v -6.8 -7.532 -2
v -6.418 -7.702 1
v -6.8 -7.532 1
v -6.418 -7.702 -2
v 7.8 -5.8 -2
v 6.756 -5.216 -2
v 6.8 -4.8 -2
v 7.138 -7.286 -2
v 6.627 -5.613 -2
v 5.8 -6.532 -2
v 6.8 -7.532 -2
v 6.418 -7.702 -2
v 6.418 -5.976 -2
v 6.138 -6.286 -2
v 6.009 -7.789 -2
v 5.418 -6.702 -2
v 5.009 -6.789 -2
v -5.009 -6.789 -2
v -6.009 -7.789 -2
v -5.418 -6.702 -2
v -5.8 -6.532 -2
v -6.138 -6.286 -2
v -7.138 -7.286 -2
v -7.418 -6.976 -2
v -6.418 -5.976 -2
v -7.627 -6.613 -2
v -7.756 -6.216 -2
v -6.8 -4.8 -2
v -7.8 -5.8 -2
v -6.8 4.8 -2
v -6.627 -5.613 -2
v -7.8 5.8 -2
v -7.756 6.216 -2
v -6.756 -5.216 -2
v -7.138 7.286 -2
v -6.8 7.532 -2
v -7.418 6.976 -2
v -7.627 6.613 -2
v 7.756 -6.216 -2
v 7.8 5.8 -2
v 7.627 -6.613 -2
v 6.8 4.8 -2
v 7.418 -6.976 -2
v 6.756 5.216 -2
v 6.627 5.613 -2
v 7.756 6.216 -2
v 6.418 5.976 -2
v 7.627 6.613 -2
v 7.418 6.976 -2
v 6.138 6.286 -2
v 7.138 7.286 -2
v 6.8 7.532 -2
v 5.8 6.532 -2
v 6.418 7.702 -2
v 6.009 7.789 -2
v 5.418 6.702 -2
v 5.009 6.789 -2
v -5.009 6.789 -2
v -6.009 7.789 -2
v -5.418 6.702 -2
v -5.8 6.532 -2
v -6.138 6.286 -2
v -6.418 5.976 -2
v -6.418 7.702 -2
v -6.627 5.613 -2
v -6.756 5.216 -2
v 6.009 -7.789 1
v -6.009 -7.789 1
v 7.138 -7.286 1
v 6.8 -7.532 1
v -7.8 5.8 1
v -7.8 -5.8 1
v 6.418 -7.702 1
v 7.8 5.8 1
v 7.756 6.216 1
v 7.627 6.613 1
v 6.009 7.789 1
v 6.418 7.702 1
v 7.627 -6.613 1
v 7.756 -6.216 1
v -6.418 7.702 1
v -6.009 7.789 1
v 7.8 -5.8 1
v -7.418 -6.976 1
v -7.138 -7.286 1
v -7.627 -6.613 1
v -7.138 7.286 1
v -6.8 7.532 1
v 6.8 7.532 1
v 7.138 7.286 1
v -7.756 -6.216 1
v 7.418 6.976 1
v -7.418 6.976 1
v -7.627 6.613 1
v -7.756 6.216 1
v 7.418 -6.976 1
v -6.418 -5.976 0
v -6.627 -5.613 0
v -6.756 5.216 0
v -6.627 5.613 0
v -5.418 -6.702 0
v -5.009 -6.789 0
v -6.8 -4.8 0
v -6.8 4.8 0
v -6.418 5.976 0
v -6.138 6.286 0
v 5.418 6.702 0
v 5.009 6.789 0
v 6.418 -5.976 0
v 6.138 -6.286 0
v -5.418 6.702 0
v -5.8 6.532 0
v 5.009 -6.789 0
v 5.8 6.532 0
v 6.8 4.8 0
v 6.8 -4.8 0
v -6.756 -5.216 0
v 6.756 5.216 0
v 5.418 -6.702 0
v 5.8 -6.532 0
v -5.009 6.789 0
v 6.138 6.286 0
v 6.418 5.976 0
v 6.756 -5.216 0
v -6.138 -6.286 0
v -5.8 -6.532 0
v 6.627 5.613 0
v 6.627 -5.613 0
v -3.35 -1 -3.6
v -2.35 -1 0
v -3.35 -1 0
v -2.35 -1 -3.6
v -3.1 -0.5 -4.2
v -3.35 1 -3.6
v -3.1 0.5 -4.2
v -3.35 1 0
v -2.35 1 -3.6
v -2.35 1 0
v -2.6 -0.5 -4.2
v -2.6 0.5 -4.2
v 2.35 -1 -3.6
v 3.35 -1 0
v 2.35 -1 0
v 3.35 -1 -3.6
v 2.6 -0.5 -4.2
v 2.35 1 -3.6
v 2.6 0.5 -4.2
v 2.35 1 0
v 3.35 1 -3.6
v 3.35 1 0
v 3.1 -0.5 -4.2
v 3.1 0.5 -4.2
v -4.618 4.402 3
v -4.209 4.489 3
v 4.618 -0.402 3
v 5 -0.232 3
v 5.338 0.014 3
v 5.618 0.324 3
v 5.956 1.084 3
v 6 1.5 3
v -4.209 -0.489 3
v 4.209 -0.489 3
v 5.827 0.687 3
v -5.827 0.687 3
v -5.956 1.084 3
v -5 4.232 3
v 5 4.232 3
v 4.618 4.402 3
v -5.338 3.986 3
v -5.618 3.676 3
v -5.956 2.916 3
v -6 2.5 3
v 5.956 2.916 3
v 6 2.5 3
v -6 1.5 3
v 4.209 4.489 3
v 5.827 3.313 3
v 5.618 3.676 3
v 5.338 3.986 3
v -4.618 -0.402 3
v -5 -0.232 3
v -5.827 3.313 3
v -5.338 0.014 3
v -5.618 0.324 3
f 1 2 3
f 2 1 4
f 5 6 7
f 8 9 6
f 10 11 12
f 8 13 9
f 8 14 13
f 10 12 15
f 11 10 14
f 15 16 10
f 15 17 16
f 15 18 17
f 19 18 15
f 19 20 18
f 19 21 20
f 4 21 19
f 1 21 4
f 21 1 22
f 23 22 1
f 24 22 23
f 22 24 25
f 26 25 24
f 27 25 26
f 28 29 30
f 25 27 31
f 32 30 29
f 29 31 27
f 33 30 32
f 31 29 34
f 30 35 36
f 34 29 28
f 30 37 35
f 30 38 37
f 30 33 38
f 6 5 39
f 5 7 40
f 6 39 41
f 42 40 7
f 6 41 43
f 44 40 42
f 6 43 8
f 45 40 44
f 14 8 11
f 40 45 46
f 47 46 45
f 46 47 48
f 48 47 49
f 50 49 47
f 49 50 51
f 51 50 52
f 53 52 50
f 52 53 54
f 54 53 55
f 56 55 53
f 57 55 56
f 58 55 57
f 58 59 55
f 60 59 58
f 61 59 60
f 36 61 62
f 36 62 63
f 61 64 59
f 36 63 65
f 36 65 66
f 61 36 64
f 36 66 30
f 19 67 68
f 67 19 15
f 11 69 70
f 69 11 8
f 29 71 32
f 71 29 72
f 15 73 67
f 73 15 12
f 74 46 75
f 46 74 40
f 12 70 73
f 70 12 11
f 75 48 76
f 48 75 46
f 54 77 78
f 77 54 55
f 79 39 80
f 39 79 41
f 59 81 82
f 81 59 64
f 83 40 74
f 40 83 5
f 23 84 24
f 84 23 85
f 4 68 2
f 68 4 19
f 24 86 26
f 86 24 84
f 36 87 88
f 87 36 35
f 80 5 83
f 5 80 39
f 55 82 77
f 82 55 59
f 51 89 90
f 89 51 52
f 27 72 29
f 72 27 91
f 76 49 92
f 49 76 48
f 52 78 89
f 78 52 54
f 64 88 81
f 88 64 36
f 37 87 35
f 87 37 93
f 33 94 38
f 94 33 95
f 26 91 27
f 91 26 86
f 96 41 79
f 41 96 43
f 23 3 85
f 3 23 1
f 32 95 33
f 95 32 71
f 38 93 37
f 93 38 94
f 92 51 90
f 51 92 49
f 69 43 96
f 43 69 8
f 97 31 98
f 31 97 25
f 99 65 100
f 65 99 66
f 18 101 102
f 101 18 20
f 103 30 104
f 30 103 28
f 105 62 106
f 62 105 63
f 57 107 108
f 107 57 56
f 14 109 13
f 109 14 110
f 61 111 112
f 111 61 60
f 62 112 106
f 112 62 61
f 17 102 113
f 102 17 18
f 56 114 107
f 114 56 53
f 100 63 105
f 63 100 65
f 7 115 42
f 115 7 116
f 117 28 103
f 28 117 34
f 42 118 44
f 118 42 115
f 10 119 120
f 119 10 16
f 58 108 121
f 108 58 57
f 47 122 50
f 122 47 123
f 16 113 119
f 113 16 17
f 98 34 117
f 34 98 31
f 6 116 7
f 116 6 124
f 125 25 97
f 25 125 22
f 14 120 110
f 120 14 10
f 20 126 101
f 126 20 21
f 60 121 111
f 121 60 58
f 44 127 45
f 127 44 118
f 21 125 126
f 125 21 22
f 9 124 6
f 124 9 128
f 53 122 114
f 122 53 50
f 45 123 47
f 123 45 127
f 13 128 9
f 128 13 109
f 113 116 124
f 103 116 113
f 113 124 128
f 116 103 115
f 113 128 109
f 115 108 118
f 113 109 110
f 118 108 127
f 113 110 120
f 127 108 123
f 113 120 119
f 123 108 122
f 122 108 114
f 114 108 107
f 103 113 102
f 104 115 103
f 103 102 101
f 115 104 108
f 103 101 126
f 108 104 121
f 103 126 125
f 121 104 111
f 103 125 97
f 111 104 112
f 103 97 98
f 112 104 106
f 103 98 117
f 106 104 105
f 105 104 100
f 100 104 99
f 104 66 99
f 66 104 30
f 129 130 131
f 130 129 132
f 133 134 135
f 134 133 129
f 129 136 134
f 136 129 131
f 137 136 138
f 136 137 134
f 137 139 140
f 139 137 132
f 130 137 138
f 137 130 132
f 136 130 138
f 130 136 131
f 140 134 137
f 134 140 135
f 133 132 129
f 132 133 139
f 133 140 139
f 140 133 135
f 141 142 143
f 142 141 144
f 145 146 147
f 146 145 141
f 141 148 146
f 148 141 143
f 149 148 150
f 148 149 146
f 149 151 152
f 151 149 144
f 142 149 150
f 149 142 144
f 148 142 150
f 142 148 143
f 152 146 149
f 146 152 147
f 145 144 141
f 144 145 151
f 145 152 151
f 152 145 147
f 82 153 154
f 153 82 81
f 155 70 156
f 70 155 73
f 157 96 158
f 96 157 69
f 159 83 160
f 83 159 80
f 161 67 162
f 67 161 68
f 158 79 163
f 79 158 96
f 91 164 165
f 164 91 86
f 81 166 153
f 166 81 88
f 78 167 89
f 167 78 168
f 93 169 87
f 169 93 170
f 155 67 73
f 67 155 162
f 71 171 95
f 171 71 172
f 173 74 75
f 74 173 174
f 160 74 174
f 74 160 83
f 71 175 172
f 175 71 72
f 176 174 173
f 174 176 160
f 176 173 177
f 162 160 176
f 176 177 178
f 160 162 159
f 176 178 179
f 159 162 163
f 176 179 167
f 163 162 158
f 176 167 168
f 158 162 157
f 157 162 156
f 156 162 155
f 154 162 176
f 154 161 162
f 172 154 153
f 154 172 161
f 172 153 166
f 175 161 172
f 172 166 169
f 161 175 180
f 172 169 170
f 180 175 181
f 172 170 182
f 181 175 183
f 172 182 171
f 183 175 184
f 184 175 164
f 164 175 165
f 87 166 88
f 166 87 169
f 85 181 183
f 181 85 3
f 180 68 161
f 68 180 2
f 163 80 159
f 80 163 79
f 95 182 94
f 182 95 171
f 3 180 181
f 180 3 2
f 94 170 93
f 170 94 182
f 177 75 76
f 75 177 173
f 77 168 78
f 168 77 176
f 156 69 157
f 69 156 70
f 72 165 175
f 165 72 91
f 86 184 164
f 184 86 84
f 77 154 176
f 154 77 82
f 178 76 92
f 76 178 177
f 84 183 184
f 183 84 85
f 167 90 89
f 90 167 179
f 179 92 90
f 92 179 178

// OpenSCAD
// file: ../../lib/utils.scad
// 角丸のプレート
module rounded_plate(x, y, r) {
  thickness = 0.0001;
  minkowski () {
    cube([x-r*2, y-r*2, thickness], center = true);
    cylinder(r = r, h = thickness, $fs = 0.1);
  }
}

// ベーシックなキーキャップの外観を定義
module keycap_basic_outer_shape(bottom_size, middle_size, top_size, top_height, skert_height, side_r) {
  hull () {
    translate([0, 0, top_height])
    rounded_plate(top_size, top_size, side_r);
    
    if(middle_size > 0) {
      translate([0, 0, 0])
      rounded_plate(middle_size, middle_size, side_r);
    }
    
    translate([0, 0, -skert_height])
    rounded_plate(bottom_size, bottom_size, side_r);
  }
}

// chocで使われる一般的なキーキャップの形状を定義
module keycap_basic_shape(
  top_size,
  head_height,
  middle_size,
  skert_height,
  bottom_size,
  thickness = 1.0,
  side_r = 1.0) {
  difference () {
    // 外形
    keycap_basic_outer_shape(bottom_size, middle_size, top_size, head_height, skert_height, side_r);
    // くり抜くための外形
    keycap_basic_outer_shape(bottom_size - thickness * 2, middle_size - thickness * 2, top_size - thickness * 2, 0, skert_height+0.005, side_r);
  }
}


// cylindricalな凹みを作る
module head_cylindrical_depress(top_size, top_height, depth) {
  function dish_r(w, d) = (w * w + 4 * d * d) / (8 * d);
  
  hull() {
    angle = 0;
    translate([0, 0, top_height]);
    rotate([- angle, 0, 0])
    translate([0, 0, dish_r(top_size, depth) - depth+top_height])
    rotate([90, 0, 0])
    cylinder(r = dish_r(top_size, depth), h = 60, /* 適当に十分な長さ */ center = true);
  }
}

// Generate dome sphere object
// calc r parameter on https://gist.github.com/masuidrive/b34472d82b07d0efead83aedf5579b78
module dome(width, height, r=0) {
  calc_width = 2 * sqrt(r^2 - (r - height)^2);

  if(abs(width - calc_width) > 0.1) {
    echo("><><><><><><><><><><");
    echo("WARNING: dome arguments are not correct, should be width ", calc_width);
  }

  difference(){
    translate([0, 0, height-r])
      sphere(r = r, $fn = 100);
    translate([0, 0, -r])
      cube([r*2, r*2, r*2], center = true);
  }
}

// https://qiita.com/zk_phi/items/ab99315ebaef66e84aa0
// https://bebebe.hatenablog.jp/entry/2019/06/04/232501
// https://qiita.com/zk_phi/items/ab99315ebaef66e84aa0
// file: ../../lib/choc.scad
// ChocV1の足を作る
module kailh_choc_v1_stem() {
  leg_length = 3.6;
  thin_length = 0.6;

  for (z = [-2.85, 2.85]) {
      translate([z, 0, -leg_length/2])
        hull() {
          cube([1, 2, leg_length], center=true);
          translate([0, 0, -(leg_length/2)-thin_length])
            cube([0.5, 1, 0.001], center=true);
        };
  }
}


module preview_chocv1_switch(DEBUG=true) {
  union() {
    children();

    if(DEBUG == true || DEBUG == "x") {
      translate([20, 20, 0])
      difference() {
        union() {
          children();
          difference() {
            translate([0, 0, -3.35]) import("../lib/choc_v1_switch.stl", convexity=2);
            translate([-10, -10, 0]) cube([20, 20, 20]);
          }
        }
        translate([-10, 0, -10]) cube([20, 20, 20]);
      }
    }

    if(DEBUG == true || DEBUG == "y") {
      translate([-20, -20, 0])
      difference() {
        union() {
          children();
          difference() {
            translate([0, 0, -3.35]) import("../lib/choc_v1_switch.stl", convexity=2);
            translate([-10, -10, 0]) cube([20, 20, 20]);
          }
        }
        translate([0, -10, -10]) cube([20, 20, 20]);
      }
    }
  }
}
// main file
include <../../lib/choc.scad>
include <../../lib/utils.scad>

DEBUG = false;//"x";

preview_chocv1_switch(DEBUG) {
    top_size = 15.6;
    head_height = 1.0;
    middle_size = 0;
    skert_height = 2.0; 
    bottom_size = 15.6;
    thickness = 1.0;
    side_r = 2.0;
    dome_height = 2.0;

  union() {
    hull() {
      translate([0.0, 2.0, dome_height+head_height])
        rounded_plate(12.0, 5.0, side_r);
      translate([0.0, 0.0, head_height])
        rounded_plate(top_size, top_size, side_r);
    }
    keycap_basic_shape(top_size, head_height, middle_size, skert_height, bottom_size, thickness, side_r);
    kailh_choc_v1_stem();
  }
}
